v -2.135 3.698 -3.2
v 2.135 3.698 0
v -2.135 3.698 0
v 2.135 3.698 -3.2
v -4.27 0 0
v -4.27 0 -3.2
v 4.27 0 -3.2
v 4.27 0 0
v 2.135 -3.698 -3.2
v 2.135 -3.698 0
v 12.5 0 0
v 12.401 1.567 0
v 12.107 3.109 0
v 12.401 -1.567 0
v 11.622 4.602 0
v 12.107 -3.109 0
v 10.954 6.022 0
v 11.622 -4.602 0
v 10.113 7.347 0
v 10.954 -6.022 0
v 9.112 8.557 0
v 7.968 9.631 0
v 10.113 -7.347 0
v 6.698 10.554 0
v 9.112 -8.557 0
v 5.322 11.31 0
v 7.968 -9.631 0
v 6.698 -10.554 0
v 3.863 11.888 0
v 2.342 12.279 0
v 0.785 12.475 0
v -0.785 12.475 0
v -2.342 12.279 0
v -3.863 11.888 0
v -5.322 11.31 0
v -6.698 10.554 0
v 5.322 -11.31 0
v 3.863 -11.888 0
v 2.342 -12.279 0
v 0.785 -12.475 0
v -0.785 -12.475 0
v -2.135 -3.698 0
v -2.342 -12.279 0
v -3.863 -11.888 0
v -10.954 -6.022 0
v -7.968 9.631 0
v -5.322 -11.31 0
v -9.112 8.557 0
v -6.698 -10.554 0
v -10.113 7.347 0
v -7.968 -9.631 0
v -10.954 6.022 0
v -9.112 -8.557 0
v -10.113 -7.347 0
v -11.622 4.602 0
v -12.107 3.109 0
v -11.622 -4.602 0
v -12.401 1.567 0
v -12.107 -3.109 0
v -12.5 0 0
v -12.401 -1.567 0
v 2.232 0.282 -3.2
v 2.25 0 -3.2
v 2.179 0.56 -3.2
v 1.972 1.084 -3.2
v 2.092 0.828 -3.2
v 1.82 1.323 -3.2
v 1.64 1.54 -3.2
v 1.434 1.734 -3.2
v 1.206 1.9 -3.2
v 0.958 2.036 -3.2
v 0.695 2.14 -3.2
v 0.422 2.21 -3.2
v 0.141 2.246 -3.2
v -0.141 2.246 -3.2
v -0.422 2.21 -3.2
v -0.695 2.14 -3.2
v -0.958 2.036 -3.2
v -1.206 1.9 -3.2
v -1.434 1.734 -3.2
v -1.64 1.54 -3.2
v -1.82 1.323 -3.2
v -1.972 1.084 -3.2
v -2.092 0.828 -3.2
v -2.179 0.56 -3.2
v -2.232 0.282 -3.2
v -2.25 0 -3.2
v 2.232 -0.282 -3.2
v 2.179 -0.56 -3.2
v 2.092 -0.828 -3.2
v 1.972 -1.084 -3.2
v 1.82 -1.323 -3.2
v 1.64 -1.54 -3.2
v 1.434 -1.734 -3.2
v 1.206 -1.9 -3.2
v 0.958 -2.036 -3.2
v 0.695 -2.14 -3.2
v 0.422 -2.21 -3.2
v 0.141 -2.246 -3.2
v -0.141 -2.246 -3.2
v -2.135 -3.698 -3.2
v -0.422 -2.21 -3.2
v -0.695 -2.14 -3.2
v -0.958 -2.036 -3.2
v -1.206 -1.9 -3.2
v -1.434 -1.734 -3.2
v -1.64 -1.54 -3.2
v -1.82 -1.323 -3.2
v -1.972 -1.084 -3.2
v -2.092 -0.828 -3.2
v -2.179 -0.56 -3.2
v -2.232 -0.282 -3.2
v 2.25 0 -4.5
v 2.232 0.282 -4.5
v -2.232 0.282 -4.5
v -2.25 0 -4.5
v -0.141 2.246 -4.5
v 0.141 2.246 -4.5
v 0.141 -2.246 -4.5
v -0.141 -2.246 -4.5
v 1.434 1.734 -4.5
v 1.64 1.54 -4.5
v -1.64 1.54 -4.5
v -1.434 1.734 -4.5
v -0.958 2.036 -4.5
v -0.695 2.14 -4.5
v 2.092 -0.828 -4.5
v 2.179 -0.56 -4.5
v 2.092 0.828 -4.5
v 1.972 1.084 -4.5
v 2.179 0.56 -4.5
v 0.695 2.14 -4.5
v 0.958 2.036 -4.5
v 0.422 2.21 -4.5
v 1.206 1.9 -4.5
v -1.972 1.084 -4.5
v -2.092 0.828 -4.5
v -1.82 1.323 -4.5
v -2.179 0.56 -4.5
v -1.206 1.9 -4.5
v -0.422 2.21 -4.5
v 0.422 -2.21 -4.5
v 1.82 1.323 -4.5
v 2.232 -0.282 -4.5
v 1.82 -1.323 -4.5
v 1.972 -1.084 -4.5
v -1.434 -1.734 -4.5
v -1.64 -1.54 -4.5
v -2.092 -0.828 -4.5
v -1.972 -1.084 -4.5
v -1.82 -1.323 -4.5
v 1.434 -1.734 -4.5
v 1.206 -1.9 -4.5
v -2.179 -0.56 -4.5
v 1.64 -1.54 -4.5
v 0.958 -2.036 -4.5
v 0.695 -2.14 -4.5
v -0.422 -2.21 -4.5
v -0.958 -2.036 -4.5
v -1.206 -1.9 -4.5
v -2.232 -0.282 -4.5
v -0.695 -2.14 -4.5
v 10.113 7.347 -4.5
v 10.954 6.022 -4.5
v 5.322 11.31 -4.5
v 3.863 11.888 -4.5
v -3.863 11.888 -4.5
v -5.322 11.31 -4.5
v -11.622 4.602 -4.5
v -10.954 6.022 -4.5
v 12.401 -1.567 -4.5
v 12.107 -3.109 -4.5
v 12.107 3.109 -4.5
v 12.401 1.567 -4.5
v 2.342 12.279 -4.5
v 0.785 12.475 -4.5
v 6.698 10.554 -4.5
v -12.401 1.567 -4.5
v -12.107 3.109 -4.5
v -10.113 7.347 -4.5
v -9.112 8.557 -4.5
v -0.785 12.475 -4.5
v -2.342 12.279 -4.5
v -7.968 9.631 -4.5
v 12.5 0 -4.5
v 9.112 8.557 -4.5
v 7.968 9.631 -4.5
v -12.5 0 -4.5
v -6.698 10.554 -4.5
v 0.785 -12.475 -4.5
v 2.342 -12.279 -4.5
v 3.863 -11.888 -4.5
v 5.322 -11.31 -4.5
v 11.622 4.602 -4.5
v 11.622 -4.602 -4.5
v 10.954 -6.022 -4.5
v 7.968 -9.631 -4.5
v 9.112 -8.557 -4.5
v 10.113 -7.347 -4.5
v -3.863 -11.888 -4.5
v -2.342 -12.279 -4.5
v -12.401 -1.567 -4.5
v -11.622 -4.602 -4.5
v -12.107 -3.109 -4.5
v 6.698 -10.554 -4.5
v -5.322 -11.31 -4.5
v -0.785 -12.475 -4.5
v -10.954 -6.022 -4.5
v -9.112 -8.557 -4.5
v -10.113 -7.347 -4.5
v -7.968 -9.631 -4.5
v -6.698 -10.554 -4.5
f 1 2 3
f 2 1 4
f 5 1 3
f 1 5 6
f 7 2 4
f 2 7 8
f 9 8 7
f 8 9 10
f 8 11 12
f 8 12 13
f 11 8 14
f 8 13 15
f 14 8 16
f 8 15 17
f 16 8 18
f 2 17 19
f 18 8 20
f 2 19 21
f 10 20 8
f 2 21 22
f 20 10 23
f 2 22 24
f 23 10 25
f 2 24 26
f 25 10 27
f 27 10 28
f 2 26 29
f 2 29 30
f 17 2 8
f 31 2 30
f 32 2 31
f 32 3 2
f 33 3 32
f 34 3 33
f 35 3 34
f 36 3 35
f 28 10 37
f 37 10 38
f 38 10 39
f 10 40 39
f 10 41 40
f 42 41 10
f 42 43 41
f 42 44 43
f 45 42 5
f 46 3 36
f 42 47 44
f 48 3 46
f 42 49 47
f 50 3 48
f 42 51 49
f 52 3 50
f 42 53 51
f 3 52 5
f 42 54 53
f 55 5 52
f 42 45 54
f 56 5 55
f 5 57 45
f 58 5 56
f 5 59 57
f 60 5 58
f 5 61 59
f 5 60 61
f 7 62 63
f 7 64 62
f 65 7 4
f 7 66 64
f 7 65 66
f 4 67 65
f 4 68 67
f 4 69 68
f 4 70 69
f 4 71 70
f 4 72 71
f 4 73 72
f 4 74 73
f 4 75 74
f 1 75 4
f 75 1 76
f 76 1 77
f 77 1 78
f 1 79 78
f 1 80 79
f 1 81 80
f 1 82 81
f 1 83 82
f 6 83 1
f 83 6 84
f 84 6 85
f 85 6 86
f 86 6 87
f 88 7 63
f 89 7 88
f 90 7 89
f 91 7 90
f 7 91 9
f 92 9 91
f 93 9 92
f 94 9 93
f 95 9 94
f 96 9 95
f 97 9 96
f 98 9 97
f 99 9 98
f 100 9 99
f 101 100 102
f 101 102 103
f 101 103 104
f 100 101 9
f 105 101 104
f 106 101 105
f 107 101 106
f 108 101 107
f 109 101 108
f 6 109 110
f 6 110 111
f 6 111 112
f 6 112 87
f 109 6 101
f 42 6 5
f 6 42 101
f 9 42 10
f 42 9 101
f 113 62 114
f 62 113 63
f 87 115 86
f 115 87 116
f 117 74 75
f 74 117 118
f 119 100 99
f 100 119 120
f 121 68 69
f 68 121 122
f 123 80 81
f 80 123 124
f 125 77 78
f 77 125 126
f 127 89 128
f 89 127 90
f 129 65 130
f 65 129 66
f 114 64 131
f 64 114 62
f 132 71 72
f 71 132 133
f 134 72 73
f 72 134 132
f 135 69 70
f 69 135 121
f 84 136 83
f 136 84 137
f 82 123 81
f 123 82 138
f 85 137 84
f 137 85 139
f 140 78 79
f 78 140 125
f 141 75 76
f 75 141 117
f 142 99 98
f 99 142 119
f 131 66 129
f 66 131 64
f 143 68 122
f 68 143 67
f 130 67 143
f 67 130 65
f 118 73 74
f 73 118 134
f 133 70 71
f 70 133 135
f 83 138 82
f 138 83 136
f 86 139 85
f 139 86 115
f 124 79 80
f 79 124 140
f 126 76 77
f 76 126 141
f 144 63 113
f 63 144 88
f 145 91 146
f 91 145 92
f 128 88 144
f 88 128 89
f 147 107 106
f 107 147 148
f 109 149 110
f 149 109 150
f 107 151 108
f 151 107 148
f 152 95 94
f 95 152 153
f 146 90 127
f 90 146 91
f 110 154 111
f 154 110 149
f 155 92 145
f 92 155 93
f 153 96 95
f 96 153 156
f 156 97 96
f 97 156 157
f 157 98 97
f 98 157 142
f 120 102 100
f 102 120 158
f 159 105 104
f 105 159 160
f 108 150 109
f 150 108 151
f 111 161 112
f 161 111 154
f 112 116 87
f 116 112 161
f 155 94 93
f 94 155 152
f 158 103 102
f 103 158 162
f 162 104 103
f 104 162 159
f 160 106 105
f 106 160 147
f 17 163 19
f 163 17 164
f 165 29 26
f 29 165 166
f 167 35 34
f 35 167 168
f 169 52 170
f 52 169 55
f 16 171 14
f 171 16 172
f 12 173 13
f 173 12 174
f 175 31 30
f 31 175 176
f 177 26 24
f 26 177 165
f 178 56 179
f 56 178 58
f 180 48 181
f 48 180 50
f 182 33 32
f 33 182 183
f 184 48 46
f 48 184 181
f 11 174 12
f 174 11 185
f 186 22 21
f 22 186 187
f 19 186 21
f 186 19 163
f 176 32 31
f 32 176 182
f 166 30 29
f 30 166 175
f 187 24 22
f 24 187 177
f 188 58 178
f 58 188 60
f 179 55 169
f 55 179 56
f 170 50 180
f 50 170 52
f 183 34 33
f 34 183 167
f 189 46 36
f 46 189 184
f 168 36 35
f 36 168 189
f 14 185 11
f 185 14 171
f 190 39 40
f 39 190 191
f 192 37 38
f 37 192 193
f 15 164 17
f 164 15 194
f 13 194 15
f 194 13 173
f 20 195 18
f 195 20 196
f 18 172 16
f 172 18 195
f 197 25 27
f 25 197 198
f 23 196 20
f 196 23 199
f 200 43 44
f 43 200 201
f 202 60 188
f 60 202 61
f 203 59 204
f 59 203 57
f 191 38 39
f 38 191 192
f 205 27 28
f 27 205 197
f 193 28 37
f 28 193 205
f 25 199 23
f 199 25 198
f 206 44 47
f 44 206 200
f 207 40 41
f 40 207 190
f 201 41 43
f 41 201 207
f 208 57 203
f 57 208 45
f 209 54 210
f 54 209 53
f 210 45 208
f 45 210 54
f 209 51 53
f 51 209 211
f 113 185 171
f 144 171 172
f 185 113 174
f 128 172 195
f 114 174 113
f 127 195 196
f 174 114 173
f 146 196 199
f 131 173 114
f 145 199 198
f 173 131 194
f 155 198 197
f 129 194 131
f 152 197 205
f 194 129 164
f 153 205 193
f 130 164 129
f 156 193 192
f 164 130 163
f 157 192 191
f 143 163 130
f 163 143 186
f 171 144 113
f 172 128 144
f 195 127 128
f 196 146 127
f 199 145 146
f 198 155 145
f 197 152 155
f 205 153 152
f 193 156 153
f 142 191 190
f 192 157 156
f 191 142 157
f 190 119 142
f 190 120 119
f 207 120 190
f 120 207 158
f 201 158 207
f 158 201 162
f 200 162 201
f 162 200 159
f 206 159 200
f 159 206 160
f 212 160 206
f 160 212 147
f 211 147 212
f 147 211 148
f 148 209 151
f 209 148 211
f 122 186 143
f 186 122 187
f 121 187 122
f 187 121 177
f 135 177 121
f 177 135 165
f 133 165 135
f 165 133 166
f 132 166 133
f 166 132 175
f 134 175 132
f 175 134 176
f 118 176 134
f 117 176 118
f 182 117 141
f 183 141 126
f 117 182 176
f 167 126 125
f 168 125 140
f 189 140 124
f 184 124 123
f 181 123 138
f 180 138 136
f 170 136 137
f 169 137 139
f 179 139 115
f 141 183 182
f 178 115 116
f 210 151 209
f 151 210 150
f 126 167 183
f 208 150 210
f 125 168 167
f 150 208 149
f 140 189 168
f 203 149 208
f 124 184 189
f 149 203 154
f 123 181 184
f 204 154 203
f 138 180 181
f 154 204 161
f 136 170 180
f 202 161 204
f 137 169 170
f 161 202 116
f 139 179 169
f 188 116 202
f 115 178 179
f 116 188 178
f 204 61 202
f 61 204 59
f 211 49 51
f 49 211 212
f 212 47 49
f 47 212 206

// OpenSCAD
$fn = 50;


difference() {
	union() {
		translate(v = [0, 0, -4.5000000000]) {
			cylinder(h = 4.5000000000, r = 12.5000000000);
		}
	}
	union() {
		translate(v = [0, 0, 0]) {
			rotate(a = [0, 0, 0]) {
				difference() {
					union() {
						translate(v = [0, 0, -3.2000000000]) {
							linear_extrude(height = 3.2000000000) {
								polygon(points = [[4.2698000000, 0.0000000000], [2.1349000000, 3.6977552691], [-2.1349000000, 3.6977552691], [-4.2698000000, 0.0000000000], [-2.1349000000, -3.6977552691], [2.1349000000, -3.6977552691]]);
							}
						}
					}
					union();
				}
			}
		}
		#translate(v = [0, 0, -100.0000000000]) {
			cylinder(h = 200, r = 2.2500000000);
		}
	}
}
